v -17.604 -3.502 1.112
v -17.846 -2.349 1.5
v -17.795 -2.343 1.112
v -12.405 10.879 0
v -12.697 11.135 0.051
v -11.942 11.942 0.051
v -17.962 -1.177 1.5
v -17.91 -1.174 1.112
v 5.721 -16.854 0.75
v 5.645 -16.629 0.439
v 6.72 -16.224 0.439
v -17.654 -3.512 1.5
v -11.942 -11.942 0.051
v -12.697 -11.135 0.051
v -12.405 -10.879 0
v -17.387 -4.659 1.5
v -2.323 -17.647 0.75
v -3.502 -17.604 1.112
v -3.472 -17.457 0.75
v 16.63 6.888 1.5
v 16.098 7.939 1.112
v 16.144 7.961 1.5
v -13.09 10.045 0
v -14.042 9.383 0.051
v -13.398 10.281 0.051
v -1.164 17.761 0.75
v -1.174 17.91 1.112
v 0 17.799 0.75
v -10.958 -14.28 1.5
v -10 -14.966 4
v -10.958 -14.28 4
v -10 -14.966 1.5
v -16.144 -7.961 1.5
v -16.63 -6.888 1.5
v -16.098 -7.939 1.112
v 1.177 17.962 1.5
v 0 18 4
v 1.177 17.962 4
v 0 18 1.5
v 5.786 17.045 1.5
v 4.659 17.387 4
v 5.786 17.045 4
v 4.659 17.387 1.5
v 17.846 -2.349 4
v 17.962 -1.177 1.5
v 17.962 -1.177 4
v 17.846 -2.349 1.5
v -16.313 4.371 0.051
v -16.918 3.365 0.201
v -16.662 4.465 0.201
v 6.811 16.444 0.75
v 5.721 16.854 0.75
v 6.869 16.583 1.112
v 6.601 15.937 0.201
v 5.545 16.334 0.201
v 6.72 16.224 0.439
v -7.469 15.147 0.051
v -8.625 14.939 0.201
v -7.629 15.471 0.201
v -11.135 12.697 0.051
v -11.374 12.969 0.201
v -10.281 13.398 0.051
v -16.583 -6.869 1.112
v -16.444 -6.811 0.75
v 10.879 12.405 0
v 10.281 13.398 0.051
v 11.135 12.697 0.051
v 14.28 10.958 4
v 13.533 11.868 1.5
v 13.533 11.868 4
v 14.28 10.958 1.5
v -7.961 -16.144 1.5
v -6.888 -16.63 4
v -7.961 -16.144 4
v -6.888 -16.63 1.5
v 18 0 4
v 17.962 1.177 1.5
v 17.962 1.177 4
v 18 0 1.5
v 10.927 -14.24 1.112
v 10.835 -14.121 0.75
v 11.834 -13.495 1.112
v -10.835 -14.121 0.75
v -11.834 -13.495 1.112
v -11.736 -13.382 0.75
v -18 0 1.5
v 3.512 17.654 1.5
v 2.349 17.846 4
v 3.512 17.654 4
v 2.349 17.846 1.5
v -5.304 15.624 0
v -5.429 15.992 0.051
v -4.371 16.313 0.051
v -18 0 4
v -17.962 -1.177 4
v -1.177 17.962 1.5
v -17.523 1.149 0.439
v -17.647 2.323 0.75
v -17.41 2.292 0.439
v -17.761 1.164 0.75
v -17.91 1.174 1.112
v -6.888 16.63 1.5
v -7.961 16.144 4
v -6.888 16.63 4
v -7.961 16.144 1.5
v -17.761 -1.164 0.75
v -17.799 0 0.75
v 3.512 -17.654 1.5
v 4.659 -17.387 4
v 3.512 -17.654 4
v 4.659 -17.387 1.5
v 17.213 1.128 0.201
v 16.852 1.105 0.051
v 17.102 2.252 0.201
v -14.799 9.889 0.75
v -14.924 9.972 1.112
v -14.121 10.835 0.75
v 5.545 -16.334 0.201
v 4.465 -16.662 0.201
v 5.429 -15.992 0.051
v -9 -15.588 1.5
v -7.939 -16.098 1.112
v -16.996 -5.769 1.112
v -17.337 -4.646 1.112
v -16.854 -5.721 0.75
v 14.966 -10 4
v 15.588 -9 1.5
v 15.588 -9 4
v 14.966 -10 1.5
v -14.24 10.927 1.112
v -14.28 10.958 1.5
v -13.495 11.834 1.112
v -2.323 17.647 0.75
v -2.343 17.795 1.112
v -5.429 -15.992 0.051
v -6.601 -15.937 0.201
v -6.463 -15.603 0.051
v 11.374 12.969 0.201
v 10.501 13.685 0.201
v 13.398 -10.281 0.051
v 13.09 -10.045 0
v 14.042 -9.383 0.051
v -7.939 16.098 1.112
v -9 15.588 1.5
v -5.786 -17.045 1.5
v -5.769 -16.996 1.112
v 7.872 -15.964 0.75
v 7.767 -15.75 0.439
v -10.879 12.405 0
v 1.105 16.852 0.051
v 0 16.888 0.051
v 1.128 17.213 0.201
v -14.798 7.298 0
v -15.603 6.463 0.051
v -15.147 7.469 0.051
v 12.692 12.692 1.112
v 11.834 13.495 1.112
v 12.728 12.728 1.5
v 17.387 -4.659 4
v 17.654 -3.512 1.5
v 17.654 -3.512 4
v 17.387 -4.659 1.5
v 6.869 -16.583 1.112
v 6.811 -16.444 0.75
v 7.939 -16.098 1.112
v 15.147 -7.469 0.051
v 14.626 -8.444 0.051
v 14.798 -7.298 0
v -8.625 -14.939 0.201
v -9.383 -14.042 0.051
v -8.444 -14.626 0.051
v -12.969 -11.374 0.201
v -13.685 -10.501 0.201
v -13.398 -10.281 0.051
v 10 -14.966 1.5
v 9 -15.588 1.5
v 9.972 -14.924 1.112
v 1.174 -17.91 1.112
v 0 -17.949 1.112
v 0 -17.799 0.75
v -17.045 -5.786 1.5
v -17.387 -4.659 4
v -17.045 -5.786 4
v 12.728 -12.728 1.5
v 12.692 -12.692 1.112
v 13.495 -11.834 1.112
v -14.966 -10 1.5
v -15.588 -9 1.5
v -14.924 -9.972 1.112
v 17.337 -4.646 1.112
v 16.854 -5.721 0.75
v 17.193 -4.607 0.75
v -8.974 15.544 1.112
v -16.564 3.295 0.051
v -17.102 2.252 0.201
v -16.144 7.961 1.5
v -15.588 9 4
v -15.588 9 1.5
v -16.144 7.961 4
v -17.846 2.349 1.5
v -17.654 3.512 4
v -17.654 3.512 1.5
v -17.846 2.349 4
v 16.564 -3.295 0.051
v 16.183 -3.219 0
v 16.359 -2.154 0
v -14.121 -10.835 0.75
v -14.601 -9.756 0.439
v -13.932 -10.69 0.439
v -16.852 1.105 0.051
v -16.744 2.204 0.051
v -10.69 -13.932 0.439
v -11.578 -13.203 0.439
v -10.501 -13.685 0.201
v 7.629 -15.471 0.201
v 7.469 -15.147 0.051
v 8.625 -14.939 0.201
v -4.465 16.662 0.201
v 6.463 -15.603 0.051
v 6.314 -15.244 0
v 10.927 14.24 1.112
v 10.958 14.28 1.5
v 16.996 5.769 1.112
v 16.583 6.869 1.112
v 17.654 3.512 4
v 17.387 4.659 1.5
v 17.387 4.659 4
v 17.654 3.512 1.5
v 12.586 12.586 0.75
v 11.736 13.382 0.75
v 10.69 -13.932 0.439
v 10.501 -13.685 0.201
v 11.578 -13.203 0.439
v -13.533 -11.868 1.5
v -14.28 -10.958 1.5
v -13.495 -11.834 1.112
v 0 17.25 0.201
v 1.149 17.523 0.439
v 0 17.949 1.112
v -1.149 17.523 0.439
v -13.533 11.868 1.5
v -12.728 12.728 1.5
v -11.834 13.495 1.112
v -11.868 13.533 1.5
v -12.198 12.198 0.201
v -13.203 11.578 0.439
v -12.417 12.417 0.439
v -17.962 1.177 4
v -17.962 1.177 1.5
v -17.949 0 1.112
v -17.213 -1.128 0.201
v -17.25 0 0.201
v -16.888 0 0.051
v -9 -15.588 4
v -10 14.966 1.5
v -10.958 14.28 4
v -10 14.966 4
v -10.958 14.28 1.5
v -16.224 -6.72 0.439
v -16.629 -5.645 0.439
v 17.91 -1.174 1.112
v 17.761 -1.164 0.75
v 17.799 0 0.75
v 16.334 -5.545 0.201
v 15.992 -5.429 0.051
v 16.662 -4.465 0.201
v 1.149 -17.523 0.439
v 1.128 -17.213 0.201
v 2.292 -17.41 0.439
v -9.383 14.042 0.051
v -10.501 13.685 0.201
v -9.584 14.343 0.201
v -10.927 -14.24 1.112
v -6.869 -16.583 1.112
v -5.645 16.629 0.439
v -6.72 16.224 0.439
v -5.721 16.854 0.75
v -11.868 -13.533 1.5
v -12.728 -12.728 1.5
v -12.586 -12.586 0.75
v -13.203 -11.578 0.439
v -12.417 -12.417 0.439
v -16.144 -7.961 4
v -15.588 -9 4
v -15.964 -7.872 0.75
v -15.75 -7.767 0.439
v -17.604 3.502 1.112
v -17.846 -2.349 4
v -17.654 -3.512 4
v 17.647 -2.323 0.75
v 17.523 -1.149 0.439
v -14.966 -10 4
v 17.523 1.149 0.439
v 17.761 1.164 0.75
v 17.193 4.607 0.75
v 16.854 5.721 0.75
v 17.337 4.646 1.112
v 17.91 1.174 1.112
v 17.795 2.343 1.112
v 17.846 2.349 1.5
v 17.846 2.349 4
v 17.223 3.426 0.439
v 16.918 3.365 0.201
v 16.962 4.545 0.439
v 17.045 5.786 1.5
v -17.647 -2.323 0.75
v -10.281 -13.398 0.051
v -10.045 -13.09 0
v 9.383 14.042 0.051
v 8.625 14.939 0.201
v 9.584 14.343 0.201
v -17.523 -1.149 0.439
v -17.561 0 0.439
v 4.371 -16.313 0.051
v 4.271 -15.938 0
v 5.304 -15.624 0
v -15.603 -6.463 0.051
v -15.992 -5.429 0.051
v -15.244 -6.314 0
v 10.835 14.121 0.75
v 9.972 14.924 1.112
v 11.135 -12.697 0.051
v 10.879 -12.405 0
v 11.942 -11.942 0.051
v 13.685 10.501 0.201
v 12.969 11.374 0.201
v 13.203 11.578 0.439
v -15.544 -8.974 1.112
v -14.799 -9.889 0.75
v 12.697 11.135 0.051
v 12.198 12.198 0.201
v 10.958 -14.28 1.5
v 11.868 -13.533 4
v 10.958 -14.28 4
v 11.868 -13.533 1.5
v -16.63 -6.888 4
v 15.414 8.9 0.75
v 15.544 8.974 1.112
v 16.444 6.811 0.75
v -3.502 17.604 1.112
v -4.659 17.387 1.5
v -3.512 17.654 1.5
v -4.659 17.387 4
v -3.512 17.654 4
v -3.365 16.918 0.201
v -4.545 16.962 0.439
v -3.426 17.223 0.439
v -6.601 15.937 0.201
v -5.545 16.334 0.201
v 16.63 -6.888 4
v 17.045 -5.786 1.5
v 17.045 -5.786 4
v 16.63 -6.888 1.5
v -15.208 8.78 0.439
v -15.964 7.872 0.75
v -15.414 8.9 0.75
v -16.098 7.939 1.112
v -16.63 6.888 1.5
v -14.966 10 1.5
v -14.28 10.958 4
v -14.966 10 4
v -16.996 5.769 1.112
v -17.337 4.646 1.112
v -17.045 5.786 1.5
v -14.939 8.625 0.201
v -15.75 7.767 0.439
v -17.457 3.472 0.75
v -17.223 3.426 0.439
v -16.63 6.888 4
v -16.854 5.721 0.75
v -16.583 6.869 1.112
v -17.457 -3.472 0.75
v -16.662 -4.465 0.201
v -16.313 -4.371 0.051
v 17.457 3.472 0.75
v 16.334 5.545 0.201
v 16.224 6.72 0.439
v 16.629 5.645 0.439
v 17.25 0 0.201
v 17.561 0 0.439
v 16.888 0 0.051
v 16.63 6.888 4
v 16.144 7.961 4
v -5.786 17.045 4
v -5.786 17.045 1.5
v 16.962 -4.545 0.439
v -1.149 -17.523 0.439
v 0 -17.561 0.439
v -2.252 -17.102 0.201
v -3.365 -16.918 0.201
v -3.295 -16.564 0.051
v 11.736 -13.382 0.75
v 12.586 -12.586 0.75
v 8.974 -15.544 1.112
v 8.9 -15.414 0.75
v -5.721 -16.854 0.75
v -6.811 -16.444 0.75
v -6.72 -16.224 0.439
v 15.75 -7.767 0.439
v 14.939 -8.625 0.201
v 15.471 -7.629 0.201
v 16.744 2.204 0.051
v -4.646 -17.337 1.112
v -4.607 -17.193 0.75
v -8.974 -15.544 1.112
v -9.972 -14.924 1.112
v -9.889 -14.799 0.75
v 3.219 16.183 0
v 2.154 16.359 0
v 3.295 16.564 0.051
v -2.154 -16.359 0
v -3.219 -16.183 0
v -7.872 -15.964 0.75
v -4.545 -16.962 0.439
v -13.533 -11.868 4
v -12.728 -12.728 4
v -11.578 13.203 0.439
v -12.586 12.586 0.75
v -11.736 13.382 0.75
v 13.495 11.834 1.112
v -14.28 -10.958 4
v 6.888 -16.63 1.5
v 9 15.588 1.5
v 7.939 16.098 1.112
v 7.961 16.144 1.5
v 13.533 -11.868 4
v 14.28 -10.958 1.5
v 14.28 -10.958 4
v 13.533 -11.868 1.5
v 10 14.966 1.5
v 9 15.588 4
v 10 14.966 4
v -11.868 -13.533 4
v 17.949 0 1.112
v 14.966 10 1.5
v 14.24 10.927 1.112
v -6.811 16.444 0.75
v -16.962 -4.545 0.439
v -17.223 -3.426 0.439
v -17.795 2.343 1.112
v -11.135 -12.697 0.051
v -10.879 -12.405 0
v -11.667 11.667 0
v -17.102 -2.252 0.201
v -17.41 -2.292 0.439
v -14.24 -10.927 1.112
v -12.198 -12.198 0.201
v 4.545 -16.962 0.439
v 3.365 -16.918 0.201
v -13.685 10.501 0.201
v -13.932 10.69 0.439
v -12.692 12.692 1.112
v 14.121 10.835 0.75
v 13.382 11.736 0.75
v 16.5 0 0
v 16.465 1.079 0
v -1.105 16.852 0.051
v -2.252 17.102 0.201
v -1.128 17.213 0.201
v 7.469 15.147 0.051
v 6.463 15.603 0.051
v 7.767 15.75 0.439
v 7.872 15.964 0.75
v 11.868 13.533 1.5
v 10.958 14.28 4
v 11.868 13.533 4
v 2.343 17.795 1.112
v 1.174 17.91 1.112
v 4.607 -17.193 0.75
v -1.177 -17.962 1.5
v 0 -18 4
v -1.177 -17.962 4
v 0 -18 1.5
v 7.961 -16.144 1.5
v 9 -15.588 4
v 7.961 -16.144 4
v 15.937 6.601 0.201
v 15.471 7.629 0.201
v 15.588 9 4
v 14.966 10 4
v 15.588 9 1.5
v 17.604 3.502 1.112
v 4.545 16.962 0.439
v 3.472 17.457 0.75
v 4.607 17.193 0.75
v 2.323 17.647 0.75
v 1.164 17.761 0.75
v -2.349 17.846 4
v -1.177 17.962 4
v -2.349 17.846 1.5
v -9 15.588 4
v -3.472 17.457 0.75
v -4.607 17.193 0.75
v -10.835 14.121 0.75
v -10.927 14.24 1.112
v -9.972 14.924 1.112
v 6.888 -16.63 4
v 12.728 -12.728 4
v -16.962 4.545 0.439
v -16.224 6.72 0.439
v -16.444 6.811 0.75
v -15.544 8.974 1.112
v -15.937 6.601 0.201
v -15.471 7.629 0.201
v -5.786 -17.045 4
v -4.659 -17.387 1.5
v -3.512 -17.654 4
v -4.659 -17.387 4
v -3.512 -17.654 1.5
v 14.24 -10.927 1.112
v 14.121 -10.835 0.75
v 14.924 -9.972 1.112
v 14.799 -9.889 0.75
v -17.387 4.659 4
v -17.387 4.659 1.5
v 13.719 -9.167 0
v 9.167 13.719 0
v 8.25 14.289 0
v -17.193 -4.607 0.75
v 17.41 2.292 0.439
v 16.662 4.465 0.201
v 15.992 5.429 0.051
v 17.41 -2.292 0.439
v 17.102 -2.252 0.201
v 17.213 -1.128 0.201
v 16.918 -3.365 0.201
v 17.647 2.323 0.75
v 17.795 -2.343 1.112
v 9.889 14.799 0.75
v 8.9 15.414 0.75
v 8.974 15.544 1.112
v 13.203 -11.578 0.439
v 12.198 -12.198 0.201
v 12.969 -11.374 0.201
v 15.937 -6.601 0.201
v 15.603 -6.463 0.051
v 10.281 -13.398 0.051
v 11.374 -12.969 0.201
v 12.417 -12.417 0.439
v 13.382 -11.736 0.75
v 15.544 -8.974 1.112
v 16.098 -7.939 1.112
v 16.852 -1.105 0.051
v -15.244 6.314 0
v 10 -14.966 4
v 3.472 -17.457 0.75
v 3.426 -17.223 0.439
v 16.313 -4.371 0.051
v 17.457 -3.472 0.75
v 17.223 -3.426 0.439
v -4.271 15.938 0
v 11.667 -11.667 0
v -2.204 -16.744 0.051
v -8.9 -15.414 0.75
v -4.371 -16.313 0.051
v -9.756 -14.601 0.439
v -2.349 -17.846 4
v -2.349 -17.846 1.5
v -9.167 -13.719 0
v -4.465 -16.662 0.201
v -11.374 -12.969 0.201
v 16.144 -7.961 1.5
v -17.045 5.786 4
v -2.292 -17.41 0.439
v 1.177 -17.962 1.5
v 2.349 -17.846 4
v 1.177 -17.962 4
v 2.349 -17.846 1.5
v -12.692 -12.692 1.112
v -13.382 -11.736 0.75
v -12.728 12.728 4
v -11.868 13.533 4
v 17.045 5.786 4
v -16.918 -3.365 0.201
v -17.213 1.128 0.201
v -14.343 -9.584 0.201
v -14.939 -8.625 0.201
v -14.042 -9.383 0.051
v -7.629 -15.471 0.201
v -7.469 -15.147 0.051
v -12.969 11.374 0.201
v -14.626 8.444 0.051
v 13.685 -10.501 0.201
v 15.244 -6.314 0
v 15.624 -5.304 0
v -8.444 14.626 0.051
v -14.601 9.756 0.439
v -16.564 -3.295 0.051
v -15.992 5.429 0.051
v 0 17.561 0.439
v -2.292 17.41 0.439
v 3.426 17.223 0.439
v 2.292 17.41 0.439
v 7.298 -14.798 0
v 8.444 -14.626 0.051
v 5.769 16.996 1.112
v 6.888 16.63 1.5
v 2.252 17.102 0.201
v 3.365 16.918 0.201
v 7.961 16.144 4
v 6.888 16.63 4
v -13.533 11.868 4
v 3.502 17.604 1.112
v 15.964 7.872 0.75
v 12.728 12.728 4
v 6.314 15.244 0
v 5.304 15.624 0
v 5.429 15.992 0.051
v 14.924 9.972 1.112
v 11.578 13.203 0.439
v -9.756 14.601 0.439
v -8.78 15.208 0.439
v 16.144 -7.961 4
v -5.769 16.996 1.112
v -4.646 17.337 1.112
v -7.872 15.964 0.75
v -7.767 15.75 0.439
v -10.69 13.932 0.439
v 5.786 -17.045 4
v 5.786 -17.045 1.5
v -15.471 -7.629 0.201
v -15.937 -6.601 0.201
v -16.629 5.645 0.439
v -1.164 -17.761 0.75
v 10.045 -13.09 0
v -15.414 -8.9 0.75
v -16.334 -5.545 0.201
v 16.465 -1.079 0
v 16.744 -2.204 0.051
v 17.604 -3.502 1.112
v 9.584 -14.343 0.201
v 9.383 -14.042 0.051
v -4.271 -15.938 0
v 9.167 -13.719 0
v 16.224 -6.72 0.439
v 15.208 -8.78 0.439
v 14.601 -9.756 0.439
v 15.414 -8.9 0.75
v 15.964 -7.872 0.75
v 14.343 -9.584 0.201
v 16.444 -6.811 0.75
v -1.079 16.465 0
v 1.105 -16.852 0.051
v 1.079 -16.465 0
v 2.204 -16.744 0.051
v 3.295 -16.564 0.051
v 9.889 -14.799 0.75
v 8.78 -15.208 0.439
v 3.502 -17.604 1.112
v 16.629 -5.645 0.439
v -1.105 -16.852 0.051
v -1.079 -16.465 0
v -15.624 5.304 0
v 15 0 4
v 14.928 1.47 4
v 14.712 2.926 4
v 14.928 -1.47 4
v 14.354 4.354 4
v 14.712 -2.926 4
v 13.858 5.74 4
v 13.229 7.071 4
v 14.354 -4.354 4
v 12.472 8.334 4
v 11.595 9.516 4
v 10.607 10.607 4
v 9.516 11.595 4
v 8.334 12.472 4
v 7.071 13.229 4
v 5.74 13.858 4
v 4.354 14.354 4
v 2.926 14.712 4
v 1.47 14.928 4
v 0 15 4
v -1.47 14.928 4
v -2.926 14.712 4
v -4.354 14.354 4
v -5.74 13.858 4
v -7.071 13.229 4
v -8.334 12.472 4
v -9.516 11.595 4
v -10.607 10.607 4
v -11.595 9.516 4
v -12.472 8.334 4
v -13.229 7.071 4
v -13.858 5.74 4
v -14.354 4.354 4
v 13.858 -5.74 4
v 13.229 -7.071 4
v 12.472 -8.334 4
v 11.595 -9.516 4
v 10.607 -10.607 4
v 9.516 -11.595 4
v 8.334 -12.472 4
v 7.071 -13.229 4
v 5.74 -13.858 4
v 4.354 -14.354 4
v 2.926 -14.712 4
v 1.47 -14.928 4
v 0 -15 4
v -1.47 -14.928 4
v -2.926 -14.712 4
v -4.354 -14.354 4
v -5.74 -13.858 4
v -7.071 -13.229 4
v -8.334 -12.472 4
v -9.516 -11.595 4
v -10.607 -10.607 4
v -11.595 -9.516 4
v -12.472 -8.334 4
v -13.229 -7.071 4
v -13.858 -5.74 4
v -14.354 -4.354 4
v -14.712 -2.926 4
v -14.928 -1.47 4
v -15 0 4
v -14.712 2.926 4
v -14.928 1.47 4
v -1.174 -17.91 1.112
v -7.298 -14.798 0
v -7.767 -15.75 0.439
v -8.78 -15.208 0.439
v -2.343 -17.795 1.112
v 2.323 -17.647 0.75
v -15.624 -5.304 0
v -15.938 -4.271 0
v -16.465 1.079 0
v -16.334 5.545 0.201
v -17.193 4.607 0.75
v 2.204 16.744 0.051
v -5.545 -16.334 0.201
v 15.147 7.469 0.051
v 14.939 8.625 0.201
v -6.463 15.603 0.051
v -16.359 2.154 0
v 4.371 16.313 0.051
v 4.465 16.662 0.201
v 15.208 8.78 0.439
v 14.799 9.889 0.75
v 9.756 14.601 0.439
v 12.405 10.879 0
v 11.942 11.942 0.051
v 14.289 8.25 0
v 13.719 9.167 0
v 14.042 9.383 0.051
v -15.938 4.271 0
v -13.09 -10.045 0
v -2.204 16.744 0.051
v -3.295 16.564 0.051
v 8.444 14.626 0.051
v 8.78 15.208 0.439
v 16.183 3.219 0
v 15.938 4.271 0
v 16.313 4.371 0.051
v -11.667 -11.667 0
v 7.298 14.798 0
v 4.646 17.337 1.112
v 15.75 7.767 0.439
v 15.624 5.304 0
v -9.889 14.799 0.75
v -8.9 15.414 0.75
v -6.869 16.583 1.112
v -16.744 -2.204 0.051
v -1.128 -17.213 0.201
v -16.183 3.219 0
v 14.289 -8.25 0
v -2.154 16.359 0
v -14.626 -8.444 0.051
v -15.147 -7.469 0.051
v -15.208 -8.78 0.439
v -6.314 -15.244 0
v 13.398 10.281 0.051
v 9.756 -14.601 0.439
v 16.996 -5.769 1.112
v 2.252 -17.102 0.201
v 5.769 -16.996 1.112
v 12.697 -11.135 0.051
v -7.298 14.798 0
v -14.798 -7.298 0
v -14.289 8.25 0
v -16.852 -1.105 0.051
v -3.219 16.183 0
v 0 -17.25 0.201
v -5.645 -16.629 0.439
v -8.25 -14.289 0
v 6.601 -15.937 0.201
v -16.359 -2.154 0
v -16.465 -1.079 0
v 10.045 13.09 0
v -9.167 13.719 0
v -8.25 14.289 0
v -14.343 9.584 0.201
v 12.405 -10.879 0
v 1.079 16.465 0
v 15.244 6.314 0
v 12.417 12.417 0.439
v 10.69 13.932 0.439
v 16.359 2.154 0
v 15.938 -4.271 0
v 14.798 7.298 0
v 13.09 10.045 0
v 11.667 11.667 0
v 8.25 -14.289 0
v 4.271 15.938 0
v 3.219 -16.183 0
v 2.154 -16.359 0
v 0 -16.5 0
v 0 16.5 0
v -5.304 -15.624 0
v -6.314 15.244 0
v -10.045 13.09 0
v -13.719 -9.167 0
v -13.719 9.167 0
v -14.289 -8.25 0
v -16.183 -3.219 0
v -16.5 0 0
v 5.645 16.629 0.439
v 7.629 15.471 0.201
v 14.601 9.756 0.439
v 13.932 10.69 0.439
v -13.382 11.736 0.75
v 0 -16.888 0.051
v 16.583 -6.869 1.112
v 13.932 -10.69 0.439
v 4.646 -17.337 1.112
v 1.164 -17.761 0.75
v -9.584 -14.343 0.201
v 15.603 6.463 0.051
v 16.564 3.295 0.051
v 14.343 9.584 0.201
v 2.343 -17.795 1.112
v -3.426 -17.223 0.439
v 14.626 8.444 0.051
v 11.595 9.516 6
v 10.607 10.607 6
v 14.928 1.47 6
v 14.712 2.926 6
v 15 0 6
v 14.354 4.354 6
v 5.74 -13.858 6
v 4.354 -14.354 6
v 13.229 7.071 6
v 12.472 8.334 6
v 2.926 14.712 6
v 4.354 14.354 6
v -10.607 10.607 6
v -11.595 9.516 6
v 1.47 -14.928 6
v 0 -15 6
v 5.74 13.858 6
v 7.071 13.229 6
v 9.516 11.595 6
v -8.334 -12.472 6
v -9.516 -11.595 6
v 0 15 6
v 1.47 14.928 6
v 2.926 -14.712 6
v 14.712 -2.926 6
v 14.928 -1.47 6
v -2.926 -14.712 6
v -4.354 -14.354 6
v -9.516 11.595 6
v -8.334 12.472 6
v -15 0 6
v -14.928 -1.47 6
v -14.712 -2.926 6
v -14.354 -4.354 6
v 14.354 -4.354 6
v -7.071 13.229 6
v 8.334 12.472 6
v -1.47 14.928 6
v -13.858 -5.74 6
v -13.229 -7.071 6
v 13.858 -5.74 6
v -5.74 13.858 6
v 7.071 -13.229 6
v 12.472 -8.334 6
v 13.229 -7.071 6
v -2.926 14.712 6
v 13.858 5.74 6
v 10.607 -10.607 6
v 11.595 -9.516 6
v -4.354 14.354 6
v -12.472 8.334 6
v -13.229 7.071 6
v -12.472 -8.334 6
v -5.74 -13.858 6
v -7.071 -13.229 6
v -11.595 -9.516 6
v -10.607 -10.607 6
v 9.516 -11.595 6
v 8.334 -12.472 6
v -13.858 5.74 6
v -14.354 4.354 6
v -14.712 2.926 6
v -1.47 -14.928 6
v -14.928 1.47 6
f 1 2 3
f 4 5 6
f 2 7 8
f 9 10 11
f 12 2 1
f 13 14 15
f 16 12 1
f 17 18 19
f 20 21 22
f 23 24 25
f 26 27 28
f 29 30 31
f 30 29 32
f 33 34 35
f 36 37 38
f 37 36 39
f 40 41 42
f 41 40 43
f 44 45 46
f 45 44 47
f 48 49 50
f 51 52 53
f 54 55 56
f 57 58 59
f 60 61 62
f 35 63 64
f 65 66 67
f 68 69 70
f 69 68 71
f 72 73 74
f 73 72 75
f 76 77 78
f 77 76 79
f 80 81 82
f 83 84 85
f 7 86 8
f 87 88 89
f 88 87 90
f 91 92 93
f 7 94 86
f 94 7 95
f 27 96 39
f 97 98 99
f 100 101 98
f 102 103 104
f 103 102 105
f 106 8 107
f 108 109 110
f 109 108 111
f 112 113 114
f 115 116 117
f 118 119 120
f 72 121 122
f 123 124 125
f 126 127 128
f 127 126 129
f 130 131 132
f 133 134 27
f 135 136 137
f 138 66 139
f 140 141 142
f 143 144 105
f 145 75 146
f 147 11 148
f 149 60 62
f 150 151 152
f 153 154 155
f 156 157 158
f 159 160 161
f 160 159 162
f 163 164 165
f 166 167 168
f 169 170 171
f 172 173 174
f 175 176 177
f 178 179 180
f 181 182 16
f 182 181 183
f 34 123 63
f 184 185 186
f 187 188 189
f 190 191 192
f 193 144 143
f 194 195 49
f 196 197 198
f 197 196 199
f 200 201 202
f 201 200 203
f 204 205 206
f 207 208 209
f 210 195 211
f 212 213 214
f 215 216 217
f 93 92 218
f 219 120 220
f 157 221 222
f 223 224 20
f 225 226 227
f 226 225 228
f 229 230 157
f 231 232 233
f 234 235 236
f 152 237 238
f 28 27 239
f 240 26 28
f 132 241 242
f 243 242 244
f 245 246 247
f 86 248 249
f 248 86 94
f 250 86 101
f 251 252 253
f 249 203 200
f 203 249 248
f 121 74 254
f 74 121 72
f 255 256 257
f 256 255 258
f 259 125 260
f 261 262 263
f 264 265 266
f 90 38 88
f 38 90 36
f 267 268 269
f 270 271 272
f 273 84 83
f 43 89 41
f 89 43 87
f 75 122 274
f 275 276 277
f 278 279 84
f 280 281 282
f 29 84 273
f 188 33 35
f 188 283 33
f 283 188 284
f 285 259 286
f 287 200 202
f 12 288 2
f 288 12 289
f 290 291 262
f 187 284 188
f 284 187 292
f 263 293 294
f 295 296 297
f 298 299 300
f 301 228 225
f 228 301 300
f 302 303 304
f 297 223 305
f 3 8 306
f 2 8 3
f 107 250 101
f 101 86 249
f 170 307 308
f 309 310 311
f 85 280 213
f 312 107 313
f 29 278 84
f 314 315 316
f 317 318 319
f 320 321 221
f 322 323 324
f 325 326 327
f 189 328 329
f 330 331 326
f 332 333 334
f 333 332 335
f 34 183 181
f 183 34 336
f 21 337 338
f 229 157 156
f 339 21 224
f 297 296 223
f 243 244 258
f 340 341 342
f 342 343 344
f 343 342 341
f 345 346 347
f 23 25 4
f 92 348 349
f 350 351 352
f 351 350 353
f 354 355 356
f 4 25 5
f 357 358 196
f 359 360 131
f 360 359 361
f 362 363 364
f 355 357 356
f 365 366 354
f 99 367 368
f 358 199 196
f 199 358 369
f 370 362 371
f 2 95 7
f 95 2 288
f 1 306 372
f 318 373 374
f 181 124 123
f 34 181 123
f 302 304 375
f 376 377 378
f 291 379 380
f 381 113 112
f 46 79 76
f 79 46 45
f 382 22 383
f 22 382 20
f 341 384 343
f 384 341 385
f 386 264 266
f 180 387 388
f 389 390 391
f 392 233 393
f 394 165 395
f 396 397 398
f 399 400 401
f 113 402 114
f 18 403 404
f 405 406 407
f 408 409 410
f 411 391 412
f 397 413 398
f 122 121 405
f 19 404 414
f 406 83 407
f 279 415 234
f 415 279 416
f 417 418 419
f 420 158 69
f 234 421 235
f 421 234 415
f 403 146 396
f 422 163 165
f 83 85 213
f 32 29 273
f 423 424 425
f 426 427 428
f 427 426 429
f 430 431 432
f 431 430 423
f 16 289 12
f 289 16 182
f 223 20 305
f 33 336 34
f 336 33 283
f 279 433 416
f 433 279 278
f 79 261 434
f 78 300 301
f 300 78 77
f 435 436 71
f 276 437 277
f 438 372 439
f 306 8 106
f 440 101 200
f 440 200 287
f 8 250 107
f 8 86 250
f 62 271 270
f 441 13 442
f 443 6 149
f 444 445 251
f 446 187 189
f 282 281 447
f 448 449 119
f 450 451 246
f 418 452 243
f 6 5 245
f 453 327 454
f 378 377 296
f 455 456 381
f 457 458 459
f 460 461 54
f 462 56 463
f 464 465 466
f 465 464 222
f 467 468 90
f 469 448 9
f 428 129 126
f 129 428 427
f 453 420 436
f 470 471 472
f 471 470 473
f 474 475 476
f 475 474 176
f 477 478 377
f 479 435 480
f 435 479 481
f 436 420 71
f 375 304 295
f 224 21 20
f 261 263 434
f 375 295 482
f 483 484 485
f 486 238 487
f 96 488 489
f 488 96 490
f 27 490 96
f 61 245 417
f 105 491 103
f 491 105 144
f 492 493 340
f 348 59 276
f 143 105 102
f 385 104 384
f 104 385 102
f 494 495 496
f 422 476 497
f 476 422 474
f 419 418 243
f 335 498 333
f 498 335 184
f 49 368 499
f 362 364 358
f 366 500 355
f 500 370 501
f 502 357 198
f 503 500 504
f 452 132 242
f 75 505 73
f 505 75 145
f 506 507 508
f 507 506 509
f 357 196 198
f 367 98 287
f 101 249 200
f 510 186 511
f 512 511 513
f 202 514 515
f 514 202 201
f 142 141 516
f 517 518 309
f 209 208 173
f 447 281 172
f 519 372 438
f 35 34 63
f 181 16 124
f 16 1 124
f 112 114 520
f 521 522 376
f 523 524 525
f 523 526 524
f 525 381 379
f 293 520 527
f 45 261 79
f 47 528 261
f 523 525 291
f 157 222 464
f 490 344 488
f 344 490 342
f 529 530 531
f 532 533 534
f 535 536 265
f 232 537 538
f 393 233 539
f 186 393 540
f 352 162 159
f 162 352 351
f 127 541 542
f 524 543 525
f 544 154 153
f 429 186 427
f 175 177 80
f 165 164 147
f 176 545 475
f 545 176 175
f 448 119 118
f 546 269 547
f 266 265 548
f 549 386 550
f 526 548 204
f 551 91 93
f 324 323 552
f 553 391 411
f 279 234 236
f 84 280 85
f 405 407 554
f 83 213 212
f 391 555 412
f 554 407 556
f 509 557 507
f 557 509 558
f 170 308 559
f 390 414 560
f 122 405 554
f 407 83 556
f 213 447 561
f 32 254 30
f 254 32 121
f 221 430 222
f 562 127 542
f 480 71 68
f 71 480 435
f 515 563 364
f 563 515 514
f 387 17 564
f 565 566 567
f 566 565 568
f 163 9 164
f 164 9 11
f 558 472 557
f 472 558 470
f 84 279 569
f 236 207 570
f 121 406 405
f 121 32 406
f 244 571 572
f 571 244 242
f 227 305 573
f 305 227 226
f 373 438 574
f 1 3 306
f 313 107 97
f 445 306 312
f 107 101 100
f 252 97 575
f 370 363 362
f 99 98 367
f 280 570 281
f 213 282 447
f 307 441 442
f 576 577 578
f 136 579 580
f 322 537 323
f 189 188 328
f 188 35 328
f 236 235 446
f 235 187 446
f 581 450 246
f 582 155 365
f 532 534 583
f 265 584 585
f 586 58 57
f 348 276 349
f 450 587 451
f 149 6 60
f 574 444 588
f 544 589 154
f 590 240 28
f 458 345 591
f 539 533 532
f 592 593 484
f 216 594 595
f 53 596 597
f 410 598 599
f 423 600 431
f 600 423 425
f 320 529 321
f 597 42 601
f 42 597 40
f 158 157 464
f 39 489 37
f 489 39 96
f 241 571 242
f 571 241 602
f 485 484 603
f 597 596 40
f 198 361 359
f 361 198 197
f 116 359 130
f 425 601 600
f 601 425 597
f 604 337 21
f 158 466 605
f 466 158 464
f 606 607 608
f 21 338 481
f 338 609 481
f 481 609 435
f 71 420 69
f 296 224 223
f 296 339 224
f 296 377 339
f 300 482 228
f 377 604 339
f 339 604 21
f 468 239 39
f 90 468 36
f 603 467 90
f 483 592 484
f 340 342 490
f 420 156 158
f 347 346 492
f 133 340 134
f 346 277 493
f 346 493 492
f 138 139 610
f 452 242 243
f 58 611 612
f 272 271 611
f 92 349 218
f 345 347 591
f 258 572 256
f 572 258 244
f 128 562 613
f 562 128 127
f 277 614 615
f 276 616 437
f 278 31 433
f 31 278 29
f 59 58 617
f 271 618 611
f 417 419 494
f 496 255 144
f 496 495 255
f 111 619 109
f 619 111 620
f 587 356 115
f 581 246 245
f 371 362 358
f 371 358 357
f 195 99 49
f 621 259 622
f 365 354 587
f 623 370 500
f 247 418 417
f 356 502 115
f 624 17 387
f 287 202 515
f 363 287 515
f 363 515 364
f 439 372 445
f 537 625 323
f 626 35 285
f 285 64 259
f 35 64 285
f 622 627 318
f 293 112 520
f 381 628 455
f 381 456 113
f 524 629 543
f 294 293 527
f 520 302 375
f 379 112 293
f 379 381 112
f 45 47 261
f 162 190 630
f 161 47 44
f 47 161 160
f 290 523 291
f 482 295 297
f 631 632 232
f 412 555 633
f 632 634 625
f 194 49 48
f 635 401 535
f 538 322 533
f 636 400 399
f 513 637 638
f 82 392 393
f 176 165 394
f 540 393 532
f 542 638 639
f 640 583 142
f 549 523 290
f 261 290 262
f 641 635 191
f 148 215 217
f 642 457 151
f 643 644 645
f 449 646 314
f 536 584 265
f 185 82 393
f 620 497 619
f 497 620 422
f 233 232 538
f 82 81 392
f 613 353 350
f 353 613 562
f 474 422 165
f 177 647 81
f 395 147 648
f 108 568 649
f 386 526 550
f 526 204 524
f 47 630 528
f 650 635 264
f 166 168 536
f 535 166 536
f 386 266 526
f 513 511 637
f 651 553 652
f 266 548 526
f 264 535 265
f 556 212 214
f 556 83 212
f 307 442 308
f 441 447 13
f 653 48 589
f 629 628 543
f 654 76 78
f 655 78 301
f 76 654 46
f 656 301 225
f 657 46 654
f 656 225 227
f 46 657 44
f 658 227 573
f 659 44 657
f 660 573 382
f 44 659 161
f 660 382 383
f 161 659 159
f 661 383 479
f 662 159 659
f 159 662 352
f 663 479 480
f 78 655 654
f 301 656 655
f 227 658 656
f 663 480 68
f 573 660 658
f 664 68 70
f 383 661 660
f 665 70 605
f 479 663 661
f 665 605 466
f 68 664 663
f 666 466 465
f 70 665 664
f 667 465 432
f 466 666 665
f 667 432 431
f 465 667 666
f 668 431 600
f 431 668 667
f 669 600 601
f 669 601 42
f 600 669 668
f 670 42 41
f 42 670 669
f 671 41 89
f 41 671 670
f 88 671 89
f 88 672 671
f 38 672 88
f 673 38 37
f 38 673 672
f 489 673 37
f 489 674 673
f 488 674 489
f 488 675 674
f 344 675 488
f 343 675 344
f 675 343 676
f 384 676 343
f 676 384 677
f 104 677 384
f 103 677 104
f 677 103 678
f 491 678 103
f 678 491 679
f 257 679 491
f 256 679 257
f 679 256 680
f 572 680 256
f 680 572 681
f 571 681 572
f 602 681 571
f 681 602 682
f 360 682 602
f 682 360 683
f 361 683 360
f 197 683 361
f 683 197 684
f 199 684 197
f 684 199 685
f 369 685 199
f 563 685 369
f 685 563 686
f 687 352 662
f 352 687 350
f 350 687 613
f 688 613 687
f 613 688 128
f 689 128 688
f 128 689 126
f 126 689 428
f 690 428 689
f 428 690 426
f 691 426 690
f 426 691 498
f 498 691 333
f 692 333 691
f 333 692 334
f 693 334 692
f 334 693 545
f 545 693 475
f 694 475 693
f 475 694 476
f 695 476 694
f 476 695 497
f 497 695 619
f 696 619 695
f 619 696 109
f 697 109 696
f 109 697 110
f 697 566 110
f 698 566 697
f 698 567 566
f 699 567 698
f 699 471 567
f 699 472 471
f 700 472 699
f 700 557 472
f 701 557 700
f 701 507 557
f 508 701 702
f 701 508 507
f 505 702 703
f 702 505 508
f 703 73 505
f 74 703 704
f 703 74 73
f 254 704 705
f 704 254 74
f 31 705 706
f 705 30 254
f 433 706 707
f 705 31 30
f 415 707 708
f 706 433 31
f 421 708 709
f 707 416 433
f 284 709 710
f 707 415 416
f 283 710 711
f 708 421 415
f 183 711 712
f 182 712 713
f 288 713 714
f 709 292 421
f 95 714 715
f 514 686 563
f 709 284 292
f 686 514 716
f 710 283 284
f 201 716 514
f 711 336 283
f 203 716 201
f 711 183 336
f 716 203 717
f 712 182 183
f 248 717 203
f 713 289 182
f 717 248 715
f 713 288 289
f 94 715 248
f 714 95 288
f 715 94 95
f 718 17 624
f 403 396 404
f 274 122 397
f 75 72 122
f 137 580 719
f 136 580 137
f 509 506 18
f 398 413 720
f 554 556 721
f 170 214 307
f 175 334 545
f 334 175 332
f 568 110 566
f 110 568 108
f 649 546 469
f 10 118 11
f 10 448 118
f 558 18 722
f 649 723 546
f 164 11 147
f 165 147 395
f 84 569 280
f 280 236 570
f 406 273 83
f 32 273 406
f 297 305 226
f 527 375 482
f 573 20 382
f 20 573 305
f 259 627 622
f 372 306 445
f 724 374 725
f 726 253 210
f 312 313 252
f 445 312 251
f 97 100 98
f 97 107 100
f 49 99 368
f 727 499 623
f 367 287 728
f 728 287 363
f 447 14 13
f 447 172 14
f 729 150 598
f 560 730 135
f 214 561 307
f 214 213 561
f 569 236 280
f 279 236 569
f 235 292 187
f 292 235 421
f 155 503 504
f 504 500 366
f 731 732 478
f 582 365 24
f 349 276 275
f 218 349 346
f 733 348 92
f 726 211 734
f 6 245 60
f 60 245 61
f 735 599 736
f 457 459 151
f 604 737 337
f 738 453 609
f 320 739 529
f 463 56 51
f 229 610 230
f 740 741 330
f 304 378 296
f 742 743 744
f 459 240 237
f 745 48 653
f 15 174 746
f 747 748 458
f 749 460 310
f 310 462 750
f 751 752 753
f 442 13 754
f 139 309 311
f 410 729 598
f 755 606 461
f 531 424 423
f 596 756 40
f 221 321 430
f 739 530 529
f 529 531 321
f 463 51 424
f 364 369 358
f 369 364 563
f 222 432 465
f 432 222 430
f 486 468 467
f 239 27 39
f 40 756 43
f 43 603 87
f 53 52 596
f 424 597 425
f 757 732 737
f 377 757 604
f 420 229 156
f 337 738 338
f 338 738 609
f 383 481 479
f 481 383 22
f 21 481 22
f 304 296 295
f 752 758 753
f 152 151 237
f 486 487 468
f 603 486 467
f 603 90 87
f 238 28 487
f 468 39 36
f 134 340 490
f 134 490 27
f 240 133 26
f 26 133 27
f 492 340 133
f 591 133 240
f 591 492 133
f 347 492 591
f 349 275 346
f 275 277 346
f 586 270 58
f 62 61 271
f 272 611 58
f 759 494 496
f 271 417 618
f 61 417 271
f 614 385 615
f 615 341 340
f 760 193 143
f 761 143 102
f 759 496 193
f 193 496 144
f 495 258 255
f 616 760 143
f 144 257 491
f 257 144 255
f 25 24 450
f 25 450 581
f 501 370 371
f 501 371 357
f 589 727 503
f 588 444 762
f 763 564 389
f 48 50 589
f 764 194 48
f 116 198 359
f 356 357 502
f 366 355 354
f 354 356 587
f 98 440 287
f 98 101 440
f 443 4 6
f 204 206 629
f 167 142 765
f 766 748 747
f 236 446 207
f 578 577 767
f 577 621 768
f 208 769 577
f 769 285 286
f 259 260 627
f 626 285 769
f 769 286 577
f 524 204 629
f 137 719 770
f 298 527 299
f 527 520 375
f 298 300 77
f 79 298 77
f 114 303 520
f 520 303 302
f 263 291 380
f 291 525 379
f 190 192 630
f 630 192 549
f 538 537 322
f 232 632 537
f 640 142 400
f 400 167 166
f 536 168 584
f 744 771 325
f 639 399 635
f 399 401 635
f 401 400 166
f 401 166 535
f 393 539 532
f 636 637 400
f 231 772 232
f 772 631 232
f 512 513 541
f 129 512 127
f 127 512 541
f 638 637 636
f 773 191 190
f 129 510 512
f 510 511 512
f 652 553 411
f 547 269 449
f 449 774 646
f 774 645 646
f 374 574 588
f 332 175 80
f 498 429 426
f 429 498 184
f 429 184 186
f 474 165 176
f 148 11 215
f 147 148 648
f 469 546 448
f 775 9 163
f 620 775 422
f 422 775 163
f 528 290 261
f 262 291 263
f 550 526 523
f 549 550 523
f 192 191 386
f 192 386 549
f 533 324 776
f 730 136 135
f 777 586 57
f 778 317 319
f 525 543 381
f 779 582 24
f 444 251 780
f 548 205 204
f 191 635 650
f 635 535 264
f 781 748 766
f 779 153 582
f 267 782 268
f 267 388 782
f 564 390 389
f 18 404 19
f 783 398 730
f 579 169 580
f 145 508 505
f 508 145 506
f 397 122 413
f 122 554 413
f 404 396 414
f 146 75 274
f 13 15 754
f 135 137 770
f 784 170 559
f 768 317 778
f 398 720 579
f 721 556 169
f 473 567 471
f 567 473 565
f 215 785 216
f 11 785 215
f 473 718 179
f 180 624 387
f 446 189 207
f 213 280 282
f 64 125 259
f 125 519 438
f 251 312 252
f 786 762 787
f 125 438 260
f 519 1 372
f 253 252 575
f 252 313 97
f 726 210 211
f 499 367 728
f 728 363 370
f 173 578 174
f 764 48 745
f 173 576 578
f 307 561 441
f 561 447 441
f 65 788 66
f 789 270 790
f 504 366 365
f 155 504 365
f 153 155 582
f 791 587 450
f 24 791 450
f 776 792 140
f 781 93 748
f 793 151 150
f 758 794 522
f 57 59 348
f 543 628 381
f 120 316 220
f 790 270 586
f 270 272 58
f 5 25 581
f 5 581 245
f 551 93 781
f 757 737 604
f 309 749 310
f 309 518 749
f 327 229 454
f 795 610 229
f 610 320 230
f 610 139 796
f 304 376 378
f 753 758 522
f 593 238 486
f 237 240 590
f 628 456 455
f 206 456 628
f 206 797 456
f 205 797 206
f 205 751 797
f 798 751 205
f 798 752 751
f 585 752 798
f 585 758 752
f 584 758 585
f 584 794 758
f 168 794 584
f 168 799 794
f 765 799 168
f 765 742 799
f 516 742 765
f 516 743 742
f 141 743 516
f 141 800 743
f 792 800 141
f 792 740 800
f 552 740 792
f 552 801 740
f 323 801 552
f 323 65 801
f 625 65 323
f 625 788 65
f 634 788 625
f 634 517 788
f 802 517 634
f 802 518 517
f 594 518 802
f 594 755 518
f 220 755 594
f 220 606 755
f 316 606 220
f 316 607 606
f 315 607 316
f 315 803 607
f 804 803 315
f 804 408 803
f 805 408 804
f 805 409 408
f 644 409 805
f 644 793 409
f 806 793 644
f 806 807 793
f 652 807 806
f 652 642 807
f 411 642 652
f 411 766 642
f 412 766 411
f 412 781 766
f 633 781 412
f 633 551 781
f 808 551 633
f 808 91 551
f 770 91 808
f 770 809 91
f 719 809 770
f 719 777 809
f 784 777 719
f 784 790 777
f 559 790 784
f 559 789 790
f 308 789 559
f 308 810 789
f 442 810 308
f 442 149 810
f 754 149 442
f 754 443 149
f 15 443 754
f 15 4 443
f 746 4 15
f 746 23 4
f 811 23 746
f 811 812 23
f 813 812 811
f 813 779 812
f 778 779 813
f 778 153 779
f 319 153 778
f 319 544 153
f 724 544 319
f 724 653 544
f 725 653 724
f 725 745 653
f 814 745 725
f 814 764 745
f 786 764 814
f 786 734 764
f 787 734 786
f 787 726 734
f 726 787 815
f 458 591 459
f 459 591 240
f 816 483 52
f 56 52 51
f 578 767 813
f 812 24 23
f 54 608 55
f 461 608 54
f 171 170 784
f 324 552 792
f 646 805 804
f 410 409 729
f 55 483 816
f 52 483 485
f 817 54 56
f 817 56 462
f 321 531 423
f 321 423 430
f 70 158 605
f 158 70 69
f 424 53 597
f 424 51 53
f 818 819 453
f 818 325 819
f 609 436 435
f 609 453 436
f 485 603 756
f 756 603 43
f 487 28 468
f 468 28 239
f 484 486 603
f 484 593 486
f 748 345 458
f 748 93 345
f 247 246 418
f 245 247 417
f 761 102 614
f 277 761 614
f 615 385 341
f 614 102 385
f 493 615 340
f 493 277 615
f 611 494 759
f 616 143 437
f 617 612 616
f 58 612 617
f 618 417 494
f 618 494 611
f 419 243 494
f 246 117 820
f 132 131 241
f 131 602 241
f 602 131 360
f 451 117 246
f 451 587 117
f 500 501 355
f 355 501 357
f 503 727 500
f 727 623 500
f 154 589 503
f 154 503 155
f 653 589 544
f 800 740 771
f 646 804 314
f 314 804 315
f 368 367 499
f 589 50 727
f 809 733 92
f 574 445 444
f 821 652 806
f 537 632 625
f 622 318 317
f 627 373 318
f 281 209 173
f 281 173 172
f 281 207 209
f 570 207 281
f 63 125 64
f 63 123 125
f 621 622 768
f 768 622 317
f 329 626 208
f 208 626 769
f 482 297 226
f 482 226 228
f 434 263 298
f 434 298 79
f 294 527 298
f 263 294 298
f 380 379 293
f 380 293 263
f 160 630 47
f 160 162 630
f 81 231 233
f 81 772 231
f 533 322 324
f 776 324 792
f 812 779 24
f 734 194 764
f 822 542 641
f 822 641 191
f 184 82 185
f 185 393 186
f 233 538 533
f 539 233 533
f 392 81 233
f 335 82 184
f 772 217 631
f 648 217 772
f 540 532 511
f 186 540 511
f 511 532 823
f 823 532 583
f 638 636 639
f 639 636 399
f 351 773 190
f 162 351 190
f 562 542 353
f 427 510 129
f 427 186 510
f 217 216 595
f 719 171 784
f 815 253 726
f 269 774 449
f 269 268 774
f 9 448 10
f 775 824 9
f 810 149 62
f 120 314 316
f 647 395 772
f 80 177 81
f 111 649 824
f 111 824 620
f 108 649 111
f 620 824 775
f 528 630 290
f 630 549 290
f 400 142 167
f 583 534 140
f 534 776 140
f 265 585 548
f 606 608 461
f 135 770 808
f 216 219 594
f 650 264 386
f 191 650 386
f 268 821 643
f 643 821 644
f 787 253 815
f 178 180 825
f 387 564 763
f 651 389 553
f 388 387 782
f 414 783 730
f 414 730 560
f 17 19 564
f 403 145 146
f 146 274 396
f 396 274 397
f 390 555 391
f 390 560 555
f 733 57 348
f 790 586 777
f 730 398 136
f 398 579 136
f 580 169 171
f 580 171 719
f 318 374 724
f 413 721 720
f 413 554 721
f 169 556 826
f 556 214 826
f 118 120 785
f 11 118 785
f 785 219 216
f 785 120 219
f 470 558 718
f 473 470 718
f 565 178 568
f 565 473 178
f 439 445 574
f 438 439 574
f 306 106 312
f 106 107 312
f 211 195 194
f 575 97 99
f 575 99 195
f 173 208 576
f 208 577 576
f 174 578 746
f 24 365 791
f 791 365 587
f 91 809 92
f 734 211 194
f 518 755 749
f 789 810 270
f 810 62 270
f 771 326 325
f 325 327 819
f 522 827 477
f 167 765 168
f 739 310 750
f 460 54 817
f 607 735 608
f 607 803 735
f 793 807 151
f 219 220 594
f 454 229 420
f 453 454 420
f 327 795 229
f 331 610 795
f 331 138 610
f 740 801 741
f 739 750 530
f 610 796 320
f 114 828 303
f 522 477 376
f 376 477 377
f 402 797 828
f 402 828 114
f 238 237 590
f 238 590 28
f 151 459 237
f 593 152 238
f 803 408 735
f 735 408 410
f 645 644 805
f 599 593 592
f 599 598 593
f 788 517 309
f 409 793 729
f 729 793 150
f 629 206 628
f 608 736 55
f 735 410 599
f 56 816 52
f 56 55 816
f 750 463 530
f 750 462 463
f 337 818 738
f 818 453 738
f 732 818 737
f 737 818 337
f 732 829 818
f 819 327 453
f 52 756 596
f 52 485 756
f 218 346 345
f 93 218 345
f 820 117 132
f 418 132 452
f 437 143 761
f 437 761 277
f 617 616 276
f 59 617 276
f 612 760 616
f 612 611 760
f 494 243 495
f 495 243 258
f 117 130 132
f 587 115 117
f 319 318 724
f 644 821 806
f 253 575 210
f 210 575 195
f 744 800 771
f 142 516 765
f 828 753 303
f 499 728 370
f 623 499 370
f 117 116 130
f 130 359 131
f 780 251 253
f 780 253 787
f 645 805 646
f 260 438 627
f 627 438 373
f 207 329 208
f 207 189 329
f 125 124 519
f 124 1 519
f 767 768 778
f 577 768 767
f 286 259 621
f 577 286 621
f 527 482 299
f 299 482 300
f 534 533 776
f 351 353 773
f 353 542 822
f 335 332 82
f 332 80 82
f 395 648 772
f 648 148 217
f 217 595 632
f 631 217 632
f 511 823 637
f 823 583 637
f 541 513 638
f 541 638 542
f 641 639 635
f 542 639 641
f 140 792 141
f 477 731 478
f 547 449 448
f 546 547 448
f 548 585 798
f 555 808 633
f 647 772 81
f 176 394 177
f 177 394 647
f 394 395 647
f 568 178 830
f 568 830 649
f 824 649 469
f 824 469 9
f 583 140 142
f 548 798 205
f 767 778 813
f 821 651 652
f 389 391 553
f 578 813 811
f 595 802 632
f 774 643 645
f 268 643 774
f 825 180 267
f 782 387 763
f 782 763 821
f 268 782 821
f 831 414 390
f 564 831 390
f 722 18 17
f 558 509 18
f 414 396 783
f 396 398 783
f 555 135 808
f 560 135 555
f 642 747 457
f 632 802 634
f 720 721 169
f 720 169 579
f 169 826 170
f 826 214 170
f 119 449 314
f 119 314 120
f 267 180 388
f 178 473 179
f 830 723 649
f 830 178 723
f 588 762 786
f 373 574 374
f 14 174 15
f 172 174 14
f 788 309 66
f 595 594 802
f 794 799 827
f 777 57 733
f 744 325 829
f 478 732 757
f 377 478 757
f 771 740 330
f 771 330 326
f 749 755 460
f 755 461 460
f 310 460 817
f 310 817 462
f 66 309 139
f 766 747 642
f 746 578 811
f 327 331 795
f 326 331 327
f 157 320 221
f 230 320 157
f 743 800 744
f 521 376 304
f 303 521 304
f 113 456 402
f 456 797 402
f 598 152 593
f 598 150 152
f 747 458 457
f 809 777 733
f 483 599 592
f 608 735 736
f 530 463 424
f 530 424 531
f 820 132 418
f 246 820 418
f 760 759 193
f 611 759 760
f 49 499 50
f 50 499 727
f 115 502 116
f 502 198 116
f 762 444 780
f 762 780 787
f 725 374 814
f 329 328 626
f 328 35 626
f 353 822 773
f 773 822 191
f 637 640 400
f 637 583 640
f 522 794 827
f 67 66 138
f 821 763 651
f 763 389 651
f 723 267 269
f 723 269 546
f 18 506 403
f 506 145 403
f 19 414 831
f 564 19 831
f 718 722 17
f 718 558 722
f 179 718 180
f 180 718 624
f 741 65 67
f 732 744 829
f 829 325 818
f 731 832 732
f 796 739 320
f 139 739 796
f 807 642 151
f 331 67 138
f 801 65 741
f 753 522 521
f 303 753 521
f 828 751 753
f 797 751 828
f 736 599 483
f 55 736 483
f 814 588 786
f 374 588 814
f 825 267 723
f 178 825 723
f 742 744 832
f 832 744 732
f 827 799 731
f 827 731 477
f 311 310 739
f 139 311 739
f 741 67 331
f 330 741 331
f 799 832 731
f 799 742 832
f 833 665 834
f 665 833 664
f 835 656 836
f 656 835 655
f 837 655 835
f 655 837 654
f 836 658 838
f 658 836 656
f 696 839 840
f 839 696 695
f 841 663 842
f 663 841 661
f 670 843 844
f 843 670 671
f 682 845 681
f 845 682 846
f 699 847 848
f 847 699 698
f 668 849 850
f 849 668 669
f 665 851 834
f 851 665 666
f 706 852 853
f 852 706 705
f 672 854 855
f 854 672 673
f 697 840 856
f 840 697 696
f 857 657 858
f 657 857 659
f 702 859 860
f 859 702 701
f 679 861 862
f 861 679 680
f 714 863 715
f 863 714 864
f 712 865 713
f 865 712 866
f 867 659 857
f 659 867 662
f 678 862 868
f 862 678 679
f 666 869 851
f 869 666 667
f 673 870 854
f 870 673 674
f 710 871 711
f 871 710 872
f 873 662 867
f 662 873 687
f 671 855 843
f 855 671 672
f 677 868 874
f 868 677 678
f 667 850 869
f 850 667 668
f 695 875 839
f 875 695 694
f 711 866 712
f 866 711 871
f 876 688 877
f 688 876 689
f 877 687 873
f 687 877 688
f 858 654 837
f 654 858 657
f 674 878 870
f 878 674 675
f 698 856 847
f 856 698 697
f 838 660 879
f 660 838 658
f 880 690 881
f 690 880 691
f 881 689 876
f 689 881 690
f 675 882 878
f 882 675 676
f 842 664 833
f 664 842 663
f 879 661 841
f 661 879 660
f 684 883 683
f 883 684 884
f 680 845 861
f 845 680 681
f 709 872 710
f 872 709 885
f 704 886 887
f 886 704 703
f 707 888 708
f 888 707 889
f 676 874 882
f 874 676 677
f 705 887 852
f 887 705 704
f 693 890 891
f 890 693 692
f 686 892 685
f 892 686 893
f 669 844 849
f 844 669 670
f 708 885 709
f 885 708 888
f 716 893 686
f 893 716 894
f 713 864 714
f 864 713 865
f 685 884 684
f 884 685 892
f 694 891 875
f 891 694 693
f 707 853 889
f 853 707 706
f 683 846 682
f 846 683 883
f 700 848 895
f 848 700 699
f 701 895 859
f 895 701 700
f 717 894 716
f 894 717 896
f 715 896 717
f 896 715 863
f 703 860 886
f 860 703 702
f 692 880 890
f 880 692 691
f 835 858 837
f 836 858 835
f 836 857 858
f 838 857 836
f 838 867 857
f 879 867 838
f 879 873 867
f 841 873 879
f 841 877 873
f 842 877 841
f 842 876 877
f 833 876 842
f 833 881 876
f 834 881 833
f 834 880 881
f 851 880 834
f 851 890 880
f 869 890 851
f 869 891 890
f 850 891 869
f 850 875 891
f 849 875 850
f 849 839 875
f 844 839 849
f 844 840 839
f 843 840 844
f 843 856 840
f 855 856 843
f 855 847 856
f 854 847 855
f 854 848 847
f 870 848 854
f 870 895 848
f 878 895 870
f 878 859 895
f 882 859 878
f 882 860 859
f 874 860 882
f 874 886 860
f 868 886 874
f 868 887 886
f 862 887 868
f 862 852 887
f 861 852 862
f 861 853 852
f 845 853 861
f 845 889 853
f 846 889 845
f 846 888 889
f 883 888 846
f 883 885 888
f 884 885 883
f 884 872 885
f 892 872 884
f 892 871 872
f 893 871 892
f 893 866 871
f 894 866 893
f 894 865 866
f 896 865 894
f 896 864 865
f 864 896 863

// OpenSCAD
// TPU pad for the ALEX foot: 36 mm disc, 4 mm thick, rounded bottom edge, with a 30 x 2 mm
// plug that presses into the pocket in the foot's bottom. One per foot. Print as saved
// (plug up), TPU 95A, 100% infill, slow. Numbers match alex-foot.scad.

pad_d = 36; pad_t = 4; plug_d = 30; plug_h = 2; r = 1.5;
hull() {
    translate([0, 0, r]) rotate_extrude($fn = 96) translate([pad_d / 2 - r, 0]) circle(r = r, $fn = 24);
    translate([0, 0, pad_t - 0.5]) cylinder(d = pad_d, h = 0.5, $fn = 96);
}
translate([0, 0, pad_t]) cylinder(d = plug_d, h = plug_h, $fn = 64);
